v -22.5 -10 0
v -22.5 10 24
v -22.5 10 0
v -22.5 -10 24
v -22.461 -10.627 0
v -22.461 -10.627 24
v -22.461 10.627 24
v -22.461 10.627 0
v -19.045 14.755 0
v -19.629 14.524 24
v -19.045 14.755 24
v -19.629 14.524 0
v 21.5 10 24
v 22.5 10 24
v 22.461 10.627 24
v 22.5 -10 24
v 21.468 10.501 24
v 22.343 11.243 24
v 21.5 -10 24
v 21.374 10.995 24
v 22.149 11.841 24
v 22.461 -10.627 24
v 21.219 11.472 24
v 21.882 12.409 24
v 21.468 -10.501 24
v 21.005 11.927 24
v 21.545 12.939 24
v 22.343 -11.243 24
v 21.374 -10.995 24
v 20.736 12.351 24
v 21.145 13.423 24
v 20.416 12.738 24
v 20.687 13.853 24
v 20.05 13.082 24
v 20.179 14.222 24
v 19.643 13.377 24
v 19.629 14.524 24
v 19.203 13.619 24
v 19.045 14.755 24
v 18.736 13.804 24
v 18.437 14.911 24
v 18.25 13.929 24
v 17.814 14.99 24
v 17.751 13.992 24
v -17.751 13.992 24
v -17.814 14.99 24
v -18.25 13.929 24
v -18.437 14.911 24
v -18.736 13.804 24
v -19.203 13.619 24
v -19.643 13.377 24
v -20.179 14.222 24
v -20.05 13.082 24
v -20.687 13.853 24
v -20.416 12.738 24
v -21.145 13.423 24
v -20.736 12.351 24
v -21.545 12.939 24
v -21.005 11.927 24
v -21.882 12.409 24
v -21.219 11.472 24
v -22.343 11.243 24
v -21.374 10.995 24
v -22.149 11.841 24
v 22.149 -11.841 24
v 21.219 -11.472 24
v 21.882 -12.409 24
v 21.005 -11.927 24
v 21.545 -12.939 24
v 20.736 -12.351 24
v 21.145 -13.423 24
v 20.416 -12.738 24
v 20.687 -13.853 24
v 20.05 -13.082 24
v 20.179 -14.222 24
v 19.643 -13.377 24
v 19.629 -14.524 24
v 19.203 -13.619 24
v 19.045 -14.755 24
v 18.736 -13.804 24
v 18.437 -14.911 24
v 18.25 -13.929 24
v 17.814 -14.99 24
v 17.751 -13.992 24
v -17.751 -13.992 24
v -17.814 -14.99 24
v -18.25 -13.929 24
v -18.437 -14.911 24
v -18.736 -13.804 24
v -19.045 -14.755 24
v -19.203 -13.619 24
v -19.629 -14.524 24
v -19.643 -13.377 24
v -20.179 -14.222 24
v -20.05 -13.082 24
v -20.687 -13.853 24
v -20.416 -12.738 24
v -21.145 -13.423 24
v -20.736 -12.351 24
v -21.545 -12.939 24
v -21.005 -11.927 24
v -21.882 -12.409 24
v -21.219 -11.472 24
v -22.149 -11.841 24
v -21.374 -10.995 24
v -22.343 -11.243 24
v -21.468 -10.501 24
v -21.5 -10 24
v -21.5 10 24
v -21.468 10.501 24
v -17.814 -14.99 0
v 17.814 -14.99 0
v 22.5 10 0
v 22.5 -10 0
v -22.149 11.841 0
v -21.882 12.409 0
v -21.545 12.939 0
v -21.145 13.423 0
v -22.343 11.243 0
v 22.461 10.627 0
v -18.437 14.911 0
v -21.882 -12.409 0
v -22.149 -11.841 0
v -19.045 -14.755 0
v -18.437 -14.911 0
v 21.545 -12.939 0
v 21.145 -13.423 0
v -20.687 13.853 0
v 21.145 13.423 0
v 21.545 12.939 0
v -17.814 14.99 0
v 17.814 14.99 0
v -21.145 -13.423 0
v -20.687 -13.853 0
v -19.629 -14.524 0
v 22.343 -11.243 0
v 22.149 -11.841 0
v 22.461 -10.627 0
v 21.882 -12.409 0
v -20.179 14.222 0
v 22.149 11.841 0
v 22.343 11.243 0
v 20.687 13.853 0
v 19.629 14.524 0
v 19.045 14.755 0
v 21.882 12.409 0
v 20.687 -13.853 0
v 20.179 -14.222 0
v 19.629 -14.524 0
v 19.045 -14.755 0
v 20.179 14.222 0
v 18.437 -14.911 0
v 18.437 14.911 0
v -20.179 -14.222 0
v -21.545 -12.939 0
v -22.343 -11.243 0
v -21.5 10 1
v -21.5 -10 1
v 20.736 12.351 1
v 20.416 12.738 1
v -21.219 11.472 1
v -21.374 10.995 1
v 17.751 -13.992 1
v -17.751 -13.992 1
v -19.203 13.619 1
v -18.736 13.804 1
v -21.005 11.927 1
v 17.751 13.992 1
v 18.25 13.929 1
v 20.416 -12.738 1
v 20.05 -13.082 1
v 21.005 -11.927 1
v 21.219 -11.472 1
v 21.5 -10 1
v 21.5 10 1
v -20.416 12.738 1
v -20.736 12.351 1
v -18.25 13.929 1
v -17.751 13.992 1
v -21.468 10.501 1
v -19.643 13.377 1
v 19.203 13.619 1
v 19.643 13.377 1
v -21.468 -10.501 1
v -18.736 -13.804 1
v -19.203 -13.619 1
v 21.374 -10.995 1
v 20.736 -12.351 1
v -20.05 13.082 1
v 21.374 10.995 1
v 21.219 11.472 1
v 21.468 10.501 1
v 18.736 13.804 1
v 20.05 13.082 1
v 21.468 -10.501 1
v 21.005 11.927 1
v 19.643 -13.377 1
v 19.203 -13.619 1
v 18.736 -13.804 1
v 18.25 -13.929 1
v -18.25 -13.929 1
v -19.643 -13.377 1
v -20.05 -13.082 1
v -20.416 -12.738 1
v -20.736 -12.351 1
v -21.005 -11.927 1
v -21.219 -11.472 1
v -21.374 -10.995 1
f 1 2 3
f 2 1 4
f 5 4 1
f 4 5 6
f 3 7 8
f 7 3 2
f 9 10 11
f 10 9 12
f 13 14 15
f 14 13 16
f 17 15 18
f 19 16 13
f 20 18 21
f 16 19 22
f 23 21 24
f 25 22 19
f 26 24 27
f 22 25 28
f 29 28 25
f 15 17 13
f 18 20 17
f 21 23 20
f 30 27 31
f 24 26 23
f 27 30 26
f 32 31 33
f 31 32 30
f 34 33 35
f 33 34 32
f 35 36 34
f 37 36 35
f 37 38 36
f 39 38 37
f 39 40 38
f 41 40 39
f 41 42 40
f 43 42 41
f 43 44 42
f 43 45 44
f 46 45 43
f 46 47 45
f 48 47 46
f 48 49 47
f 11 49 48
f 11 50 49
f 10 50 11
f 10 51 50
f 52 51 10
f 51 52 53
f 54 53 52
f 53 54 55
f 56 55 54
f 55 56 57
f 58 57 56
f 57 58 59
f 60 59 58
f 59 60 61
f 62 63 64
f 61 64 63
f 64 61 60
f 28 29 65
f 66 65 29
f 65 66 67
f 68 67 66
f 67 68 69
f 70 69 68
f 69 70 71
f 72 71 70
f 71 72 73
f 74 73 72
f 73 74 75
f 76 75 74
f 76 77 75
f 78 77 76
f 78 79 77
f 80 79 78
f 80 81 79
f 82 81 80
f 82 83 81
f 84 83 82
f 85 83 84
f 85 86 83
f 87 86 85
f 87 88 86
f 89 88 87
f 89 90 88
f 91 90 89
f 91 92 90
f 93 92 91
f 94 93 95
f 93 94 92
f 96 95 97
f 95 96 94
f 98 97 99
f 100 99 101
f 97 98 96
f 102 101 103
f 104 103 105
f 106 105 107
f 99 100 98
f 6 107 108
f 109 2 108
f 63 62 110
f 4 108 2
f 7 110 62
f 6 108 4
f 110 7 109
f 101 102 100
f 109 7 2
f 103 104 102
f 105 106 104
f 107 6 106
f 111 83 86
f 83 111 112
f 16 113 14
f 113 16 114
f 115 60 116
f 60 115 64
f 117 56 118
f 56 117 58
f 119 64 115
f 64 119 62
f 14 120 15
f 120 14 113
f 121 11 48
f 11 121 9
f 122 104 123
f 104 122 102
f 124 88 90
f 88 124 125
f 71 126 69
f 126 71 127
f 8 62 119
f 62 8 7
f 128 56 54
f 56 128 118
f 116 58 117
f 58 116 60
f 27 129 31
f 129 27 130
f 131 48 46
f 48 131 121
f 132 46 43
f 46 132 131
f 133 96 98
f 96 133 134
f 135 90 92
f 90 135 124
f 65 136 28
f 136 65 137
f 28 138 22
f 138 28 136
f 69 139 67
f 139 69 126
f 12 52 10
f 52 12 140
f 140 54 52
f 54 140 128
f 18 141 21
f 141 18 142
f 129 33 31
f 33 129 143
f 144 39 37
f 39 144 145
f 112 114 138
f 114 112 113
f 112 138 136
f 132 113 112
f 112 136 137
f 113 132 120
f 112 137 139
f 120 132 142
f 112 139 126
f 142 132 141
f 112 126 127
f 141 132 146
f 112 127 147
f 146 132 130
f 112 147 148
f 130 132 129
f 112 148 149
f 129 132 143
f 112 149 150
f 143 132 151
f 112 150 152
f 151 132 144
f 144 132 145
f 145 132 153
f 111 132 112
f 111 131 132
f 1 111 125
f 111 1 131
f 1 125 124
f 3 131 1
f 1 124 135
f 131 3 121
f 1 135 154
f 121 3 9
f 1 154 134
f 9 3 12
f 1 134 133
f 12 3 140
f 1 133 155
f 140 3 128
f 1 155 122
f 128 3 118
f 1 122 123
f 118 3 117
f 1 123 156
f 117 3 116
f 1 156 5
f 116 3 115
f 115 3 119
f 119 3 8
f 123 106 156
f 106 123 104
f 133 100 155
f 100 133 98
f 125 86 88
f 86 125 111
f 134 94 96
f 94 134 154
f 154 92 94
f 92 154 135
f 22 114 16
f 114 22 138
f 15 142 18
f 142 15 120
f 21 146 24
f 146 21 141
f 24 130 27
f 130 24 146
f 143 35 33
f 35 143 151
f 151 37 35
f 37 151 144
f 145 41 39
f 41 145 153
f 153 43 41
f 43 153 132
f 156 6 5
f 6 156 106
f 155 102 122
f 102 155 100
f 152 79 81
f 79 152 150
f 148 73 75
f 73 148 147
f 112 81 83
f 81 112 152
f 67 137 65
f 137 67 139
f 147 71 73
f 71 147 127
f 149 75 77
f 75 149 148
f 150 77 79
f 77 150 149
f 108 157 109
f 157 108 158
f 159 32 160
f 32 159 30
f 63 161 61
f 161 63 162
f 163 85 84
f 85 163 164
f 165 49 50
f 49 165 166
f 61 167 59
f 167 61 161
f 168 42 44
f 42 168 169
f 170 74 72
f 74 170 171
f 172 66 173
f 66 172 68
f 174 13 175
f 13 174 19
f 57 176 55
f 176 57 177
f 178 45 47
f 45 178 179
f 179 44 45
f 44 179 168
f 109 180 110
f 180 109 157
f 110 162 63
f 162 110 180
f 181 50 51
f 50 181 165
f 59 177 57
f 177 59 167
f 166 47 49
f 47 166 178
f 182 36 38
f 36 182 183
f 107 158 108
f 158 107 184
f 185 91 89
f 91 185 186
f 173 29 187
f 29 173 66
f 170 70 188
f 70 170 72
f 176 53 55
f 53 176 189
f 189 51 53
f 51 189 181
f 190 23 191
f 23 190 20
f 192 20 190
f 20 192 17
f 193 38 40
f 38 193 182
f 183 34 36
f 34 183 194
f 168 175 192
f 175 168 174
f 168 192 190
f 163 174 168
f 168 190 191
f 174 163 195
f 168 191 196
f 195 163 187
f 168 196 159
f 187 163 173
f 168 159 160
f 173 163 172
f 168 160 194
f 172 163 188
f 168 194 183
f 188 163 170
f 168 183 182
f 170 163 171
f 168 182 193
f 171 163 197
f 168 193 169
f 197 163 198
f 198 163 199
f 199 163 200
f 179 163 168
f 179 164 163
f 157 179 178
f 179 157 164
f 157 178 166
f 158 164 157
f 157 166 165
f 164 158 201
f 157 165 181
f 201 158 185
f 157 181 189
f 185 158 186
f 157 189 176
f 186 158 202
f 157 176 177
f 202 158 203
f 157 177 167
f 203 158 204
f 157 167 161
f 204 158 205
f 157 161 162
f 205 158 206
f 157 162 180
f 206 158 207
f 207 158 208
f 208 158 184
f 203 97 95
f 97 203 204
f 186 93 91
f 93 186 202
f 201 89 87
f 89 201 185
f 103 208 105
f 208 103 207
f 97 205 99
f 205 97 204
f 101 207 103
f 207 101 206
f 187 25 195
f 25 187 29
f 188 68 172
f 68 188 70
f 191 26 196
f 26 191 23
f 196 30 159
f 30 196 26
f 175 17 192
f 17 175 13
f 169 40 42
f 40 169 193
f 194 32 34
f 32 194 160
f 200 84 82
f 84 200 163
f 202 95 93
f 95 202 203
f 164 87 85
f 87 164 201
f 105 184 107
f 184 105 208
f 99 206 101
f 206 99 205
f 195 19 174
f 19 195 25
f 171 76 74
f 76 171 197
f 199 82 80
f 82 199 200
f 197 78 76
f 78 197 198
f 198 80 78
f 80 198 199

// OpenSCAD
$fn = 50;


difference() {
	union() {
		hull() {
			translate(v = [-17.5000000000, 10.0000000000, 0]) {
				cylinder(h = 24, r = 5);
			}
			translate(v = [17.5000000000, 10.0000000000, 0]) {
				cylinder(h = 24, r = 5);
			}
			translate(v = [-17.5000000000, -10.0000000000, 0]) {
				cylinder(h = 24, r = 5);
			}
			translate(v = [17.5000000000, -10.0000000000, 0]) {
				cylinder(h = 24, r = 5);
			}
		}
	}
	union() {
		translate(v = [0, 0, 1]) {
			#hull() {
				translate(v = [-17.5000000000, 10.0000000000, 0]) {
					cylinder(h = 23, r = 4);
				}
				translate(v = [17.5000000000, 10.0000000000, 0]) {
					cylinder(h = 23, r = 4);
				}
				translate(v = [-17.5000000000, -10.0000000000, 0]) {
					cylinder(h = 23, r = 4);
				}
				translate(v = [17.5000000000, -10.0000000000, 0]) {
					cylinder(h = 23, r = 4);
				}
			}
		}
	}
}
